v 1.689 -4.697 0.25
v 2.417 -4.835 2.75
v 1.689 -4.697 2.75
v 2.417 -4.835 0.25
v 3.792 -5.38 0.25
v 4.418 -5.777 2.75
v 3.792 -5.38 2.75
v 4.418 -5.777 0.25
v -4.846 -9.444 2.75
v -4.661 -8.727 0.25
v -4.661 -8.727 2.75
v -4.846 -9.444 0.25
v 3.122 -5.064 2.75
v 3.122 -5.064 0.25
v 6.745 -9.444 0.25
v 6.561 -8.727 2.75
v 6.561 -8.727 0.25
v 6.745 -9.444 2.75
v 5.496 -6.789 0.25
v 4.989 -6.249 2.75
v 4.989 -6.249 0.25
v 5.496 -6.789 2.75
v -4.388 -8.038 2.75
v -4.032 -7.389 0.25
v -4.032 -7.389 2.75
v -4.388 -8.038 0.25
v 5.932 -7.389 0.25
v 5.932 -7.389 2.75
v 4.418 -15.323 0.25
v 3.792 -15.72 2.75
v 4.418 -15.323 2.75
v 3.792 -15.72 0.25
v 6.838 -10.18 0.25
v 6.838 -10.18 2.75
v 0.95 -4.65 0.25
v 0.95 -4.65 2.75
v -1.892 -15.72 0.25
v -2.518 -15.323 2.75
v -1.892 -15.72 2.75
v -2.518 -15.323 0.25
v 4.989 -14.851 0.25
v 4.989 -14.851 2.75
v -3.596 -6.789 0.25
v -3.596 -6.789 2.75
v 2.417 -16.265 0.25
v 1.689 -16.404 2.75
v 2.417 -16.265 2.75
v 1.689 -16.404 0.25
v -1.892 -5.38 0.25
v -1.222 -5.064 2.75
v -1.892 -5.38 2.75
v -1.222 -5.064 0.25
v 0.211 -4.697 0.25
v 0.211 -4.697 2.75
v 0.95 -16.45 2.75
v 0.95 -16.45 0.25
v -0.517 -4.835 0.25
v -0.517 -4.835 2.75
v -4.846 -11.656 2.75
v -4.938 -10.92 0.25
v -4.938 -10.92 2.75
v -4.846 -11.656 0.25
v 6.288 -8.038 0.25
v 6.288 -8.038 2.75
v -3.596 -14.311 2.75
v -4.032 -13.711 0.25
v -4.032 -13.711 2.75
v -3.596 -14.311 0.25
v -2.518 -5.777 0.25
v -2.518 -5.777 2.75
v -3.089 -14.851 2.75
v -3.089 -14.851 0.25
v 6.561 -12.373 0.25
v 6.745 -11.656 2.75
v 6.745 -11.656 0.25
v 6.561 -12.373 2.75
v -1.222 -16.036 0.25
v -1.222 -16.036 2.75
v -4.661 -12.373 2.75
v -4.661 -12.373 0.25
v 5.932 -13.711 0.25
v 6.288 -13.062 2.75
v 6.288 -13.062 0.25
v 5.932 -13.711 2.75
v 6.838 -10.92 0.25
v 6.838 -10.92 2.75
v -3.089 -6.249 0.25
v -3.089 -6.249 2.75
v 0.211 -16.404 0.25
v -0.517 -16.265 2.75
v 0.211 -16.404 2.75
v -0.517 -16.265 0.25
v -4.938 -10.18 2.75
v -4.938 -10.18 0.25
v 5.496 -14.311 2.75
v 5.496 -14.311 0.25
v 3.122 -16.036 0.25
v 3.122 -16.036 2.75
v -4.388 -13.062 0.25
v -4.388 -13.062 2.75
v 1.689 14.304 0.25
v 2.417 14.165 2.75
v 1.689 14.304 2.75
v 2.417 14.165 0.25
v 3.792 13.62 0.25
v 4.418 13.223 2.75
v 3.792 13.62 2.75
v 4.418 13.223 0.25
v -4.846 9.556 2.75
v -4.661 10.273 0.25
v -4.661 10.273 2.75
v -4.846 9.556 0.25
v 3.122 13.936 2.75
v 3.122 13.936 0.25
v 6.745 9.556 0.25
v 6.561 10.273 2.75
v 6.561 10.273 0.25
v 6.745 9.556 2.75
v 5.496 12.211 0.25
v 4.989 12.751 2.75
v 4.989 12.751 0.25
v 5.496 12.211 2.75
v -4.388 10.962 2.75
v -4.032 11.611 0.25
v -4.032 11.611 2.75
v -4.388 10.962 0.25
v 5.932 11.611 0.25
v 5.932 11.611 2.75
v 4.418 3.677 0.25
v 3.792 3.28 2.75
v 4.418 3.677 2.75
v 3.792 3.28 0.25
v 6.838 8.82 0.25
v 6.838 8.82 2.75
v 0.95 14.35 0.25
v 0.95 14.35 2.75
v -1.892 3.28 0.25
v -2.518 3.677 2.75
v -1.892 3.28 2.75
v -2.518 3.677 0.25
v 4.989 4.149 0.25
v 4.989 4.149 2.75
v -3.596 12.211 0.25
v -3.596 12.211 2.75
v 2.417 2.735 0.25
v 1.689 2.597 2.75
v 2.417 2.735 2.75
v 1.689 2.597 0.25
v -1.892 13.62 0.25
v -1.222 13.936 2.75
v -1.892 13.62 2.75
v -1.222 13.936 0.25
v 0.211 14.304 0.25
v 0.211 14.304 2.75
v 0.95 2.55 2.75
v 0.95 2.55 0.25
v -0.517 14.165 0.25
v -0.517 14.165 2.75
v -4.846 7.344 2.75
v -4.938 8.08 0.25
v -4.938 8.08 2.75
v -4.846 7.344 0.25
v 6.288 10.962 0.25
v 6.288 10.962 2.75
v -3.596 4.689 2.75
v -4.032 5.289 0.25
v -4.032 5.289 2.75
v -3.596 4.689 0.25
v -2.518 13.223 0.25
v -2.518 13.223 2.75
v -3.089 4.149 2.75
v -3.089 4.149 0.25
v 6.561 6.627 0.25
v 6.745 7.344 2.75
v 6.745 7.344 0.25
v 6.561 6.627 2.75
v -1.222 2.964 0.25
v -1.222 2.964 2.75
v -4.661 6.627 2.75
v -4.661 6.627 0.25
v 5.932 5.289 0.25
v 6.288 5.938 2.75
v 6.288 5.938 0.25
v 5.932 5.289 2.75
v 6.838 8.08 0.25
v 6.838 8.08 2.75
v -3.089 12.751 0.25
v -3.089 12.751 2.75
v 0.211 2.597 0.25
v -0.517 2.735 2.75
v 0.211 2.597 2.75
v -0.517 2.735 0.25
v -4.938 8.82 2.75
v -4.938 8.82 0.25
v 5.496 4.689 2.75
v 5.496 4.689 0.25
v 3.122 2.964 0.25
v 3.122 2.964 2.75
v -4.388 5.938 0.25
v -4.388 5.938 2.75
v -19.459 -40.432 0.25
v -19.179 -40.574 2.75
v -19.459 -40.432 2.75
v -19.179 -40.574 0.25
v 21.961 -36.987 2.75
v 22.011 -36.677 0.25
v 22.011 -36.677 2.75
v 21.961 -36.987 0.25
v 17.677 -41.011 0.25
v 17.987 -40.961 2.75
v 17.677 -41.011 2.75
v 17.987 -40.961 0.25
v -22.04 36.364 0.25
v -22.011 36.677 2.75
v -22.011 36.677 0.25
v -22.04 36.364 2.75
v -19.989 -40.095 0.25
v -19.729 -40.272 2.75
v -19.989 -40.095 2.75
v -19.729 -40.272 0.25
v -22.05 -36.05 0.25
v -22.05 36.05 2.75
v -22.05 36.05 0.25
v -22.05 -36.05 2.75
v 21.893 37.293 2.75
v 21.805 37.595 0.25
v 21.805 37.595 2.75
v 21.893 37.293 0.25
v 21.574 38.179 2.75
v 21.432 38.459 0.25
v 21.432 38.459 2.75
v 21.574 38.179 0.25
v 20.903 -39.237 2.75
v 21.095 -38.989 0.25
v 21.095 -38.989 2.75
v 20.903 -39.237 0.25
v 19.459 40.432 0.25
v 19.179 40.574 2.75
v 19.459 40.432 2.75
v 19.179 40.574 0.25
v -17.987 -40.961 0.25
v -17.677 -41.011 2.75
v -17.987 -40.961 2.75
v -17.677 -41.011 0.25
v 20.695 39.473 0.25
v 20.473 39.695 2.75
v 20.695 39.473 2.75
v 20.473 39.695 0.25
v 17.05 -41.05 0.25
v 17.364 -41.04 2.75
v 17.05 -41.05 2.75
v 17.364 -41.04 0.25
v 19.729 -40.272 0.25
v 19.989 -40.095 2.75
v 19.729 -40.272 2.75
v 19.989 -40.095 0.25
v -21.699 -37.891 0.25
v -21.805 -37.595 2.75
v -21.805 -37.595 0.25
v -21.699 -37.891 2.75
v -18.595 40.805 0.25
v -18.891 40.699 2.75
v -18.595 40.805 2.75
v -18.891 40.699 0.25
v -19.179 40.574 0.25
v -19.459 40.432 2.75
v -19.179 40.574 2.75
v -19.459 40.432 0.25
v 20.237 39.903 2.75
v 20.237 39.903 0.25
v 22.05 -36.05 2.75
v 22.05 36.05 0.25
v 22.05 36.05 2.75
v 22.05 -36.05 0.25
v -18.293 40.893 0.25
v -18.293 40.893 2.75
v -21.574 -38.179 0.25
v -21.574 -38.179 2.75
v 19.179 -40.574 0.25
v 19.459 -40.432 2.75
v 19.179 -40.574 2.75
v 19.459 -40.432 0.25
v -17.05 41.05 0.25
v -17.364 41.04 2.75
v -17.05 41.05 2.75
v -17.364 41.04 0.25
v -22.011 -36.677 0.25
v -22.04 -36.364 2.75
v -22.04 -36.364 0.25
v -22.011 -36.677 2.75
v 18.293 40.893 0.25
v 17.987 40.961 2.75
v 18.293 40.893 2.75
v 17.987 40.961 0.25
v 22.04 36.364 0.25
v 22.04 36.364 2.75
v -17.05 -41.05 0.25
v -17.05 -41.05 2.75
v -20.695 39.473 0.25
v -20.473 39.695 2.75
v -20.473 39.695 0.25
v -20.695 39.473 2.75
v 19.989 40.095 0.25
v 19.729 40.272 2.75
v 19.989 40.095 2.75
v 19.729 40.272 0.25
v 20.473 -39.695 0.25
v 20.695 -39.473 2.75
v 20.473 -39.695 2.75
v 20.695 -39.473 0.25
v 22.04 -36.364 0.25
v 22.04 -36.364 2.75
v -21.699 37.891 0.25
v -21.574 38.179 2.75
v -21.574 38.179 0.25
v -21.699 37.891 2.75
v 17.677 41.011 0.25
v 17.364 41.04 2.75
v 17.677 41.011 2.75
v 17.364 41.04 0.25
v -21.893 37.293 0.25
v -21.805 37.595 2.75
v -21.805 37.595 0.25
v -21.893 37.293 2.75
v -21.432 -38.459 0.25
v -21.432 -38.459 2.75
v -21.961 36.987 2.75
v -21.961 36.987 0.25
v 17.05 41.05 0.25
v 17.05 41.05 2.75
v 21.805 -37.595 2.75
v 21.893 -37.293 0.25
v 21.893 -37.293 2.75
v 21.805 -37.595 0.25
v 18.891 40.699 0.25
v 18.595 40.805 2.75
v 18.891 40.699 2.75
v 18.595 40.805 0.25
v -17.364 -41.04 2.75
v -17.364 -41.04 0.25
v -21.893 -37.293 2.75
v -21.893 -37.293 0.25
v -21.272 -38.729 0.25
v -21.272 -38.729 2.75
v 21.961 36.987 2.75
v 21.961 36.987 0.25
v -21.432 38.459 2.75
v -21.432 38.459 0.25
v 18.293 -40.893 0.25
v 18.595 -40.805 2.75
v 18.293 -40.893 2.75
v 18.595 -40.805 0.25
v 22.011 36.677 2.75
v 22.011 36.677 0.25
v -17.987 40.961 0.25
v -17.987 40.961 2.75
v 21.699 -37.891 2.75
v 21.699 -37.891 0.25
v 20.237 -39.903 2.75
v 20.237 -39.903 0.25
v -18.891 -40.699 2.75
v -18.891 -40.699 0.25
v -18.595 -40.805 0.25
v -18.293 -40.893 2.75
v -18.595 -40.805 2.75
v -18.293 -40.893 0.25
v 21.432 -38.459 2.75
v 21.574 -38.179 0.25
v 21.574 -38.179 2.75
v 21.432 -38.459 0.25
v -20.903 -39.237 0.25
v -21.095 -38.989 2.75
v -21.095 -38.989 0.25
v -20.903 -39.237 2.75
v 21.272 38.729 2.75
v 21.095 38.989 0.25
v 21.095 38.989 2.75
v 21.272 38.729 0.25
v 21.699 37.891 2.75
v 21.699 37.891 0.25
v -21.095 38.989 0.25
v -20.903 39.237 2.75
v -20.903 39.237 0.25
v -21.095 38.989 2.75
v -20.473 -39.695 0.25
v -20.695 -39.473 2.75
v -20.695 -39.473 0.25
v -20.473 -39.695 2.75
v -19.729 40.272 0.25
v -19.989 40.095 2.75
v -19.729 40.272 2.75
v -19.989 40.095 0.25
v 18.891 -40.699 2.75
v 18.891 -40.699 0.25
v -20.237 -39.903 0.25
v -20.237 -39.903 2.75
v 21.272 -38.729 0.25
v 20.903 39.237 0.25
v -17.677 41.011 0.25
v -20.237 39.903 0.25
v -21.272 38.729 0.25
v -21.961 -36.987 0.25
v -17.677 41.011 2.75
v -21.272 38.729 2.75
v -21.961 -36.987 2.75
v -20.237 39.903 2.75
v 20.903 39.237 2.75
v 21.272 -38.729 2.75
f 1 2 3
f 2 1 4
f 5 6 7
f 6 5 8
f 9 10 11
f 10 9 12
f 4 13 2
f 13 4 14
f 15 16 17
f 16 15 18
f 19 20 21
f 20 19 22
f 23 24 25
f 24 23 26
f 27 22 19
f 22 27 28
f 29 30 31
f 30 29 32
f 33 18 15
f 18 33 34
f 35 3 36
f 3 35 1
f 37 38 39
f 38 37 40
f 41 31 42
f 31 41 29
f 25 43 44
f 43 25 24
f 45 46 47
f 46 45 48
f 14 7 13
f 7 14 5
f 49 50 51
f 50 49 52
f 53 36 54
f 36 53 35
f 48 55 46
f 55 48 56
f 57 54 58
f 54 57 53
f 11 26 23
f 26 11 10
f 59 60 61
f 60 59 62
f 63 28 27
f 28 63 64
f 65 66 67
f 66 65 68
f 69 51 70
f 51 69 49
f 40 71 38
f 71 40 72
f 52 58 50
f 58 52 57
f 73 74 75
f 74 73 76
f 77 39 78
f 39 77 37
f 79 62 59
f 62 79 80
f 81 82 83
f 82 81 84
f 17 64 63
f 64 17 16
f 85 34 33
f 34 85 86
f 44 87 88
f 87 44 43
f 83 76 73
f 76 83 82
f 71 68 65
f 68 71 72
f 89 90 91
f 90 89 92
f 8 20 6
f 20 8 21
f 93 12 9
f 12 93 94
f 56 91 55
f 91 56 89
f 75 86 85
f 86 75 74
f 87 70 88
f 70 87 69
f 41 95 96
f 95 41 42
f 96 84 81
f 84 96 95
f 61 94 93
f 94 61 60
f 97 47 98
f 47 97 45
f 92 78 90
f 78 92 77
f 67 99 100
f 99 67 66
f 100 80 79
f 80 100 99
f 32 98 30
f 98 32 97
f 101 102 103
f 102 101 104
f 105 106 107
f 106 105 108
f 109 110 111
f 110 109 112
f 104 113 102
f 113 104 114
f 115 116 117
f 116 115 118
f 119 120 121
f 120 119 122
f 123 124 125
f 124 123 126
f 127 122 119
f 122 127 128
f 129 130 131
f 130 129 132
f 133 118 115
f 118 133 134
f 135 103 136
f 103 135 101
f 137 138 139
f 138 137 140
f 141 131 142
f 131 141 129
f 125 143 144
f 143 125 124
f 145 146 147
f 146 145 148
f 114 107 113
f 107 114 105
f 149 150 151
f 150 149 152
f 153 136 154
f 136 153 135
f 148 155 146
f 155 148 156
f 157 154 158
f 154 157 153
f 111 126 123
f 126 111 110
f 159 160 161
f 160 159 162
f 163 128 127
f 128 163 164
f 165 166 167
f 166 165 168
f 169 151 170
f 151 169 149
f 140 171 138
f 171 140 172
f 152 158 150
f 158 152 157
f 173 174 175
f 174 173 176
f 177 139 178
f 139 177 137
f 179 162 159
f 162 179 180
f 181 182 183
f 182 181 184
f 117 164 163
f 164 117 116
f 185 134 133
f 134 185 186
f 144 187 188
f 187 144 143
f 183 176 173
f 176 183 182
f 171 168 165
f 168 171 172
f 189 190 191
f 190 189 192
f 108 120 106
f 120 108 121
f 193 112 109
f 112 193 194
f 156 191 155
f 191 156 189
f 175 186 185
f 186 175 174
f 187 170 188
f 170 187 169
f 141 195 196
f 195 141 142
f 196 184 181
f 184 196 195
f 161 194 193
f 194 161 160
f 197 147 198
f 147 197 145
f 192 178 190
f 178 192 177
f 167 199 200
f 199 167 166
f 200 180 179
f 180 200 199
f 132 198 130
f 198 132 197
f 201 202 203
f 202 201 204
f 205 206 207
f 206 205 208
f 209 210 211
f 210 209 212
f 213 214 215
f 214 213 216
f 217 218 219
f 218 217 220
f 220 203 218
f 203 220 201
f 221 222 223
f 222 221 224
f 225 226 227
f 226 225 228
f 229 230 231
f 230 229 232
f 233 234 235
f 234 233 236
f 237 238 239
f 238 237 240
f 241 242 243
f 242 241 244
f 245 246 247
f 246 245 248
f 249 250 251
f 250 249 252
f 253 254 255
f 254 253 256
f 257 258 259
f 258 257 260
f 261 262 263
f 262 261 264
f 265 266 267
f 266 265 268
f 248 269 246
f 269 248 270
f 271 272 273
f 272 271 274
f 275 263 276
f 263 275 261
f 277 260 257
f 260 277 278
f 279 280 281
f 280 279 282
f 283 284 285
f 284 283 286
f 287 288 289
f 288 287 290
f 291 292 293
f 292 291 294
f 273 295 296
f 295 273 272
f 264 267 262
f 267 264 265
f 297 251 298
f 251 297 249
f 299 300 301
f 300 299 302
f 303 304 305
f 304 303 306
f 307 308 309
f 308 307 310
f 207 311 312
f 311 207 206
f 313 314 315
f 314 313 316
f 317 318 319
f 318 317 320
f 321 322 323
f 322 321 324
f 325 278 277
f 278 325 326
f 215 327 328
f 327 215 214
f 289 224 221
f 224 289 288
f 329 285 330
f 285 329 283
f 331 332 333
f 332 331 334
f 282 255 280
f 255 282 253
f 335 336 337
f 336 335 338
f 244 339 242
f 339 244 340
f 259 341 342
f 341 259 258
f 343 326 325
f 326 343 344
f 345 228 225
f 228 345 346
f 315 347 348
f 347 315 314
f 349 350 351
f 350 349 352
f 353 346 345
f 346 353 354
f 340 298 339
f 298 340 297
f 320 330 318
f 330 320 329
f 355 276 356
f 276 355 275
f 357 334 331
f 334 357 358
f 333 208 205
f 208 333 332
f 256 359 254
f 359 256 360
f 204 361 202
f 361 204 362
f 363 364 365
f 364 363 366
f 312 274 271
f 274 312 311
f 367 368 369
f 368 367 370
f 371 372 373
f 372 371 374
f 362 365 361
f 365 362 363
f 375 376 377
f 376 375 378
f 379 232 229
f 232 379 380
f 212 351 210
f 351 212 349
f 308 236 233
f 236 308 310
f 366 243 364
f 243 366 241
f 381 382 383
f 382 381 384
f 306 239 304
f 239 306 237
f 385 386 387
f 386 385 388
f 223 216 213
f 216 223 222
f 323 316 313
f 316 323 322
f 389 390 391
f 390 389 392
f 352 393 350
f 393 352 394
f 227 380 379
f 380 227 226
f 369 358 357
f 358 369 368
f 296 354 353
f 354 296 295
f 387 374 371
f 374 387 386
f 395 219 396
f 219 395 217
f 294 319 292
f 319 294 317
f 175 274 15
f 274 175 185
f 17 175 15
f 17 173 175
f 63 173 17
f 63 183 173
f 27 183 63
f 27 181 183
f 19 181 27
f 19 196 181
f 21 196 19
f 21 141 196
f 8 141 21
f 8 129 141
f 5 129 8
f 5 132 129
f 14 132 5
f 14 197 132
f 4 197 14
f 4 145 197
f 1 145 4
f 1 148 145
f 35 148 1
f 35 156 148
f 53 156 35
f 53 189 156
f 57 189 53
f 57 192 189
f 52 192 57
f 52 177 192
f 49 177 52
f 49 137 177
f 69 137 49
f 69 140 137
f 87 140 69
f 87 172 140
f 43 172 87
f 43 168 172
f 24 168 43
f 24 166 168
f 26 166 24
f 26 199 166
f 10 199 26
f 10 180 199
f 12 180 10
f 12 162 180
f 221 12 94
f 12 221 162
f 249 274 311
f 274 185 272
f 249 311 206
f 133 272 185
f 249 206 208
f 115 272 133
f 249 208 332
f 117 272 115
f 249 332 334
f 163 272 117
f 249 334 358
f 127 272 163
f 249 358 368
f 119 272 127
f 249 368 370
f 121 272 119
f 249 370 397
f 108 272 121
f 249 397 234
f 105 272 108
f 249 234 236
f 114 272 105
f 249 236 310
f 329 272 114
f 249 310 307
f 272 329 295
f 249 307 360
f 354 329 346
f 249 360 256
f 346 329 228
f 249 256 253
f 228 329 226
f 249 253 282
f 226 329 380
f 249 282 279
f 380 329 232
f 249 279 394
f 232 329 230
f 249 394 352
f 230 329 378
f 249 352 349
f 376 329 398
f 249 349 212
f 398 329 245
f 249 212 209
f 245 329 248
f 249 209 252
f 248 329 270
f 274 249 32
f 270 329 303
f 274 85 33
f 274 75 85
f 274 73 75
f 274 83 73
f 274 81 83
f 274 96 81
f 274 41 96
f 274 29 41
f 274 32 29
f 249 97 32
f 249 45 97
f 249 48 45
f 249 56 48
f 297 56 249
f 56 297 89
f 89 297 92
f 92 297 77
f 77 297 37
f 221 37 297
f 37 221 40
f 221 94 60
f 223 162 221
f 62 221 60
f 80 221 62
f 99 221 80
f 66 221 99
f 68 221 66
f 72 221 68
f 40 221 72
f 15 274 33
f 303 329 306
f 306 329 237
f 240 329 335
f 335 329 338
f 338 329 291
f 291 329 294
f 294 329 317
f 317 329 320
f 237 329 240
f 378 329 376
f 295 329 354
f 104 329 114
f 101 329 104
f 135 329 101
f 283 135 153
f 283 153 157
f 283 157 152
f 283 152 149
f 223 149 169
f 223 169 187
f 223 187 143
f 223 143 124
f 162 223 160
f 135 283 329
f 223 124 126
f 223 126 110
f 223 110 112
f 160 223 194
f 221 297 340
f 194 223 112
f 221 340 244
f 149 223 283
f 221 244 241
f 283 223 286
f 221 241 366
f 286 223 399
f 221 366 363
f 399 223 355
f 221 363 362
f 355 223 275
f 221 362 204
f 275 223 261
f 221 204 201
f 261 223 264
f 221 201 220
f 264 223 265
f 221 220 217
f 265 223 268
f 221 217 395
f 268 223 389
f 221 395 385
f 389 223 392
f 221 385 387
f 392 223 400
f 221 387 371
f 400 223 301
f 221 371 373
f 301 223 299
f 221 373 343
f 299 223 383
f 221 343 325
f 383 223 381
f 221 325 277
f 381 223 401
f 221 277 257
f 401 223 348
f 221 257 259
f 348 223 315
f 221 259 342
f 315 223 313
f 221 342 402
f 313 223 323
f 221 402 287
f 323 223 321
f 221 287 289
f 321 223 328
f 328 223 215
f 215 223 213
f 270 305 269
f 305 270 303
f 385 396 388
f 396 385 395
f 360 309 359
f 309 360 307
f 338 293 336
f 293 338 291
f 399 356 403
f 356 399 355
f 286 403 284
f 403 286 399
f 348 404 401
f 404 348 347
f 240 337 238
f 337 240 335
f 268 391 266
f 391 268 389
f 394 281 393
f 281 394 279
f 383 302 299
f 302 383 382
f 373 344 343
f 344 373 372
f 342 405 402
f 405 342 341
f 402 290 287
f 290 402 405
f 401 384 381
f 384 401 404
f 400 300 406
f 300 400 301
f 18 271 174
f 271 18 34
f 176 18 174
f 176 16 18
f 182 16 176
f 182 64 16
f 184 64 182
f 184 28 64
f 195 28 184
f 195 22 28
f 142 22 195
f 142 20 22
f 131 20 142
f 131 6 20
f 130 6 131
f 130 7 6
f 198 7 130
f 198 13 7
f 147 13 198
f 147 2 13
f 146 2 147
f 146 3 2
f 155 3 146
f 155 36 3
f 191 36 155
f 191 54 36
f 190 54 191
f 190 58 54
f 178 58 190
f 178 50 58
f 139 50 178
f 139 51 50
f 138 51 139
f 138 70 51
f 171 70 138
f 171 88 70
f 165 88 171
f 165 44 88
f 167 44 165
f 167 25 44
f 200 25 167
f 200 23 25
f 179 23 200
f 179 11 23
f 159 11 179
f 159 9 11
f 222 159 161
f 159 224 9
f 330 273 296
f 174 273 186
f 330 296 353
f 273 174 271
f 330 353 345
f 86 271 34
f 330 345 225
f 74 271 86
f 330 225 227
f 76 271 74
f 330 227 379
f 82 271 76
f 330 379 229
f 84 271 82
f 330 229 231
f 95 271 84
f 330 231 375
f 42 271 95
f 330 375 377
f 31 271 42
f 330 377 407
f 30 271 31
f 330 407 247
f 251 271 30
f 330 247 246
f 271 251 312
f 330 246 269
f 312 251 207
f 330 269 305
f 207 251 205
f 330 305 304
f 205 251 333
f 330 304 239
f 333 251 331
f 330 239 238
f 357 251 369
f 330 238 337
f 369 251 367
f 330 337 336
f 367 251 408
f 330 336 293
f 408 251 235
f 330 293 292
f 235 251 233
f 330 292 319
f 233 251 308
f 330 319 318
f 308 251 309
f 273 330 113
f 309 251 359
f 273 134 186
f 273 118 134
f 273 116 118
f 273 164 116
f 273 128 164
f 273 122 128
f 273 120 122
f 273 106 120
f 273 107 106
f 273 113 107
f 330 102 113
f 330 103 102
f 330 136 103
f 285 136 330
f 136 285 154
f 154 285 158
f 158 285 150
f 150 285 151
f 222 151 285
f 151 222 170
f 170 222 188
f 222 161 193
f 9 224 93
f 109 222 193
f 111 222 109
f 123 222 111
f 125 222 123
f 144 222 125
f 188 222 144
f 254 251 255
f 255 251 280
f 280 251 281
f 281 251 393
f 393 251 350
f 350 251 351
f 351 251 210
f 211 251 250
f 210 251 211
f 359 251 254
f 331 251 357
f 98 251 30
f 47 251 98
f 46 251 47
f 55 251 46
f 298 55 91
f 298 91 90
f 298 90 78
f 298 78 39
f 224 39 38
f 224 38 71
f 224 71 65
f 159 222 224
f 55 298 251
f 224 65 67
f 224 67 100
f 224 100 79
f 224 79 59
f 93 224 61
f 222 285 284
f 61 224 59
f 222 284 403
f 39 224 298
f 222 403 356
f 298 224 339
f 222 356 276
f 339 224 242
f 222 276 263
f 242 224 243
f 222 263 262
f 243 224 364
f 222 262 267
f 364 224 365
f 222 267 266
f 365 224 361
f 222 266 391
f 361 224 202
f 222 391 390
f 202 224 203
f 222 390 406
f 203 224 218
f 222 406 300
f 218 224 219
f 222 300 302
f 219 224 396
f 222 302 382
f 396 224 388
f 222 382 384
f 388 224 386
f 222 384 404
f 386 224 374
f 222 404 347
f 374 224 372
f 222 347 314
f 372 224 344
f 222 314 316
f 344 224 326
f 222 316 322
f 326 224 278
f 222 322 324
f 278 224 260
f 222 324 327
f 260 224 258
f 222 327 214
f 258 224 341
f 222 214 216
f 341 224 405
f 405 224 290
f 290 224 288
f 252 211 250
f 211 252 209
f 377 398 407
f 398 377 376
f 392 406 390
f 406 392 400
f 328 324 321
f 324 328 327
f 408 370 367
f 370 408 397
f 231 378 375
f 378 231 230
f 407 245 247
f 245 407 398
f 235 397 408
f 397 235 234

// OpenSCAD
$vpr = [55, 0, 234];
$vpt = [25, -15, -20];
$vpd = 343;


/*//////////////////////////////////////////////////////////////////
              -    FB Aka Heartman/Hearty 2016     -                   
              -   http://heartygfx.blogspot.com    -                  
              -       OpenScad Parametric Box      -                     
              -         CC BY-NC 3.0 License       -                      
////////////////////////////////////////////////////////////////////                                                                                                             
12/02/2016 - Fixed minor bug 
28/02/2016 - Added holes ventilation option                    
09/03/2016 - Added PCB feet support, fixed the shell artefact on export mode. 

*/ ////////////////////////// - Info - //////////////////////////////

// All coordinates are starting as integrated circuit pins.
// From the top view :

//   CoordD           <---       CoordC
//                                 ^
//                                 ^
//                                 ^
//   CoordA           --->       CoordB

////////////////////////////////////////////////////////////////////

/////////////////////////// - Box parameters - //////////////////////

/* [Box dimensions] */
// - Longueur - Length  
Length = 135;
// - Largeur - Width
Width = 88;
// - Hauteur - Height  
Height = 50;
// - Epaisseur - Wall thickness  
Thick = 2.5; //[2:5]  

/* [Box options] */
// - DiamÃ¨tre Coin arrondi - Filet diameter  
Filet = 5; //[0.1:12] 
// - lissage de l'arrondi - Filet smoothness  
Resolution = 1; //[1:100] 
// - TolÃ©rance - Tolerance (Panel/rails gap)
m = 0.9;
// Pieds PCB - PCB feet (x4) 
PCBFeet = 0; // [0:No, 1:Yes]
// - Decorations to ventilation holes
Vent = 0; // [0:No, 1:Yes]
// - Decoration-Holes width (in mm)
Vent_width = 0;

/////////////////////////// - PCB parameters - //////////////////////

/* [PCB_Feet] */
//All dimensions are from the center foot axis

// - Coin bas gauche - Low left corner X position
PCBPosX = 0;
// - Coin bas gauche - Low left corner Y position
PCBPosY = 0;
// - Longueur PCB - PCB Length
PCBLength = 0;
// - Largeur PCB - PCB Width
PCBWidth = 0;
// - Heuteur pied - Feet height
FootHeight = 0;
// - DiamÃ¨tre pied - Foot diameter
FootDia = 0;
// - DiamÃ¨tre trou - Hole diameter
FootHole = 0;

////////////////////////////////////////////////////////////////////////
//////////////////////// <- Render Manager -> //////////////////////////
////////////////////////////////////////////////////////////////////////

/* [STL element to export] */
//Coque haut - Top shell
TShell = 0; // [0:No, 1:Yes]
//Coque bas- Bottom shell
BShell = 0; // [0:No, 1:Yes]
//Panneau avant - Front panel
FPanL = 1; // [0:No, 1:Yes]
//Panneau arriÃ¨re - Back panel  
BPanL = 0; // [0:No, 1:Yes]

/* [Hidden] */
// - Couleur coque - Shell color  
Couleur1 = "Orange";
// - Couleur panneaux - Panels color    
Couleur2 = "OrangeRed";
// Thick X 2 - making decorations thicker if it is a vent to make sure they go through shell
Dec_Thick = Vent ? Thick * 2 : Thick;
// - Depth decoration
Dec_size = Vent ? Thick * 2 : 0.8;

////////////////// - Generic rounded box - ///////////////

module RoundBox($a = Length, $b = Width, $c = Height) { // Cube bords arrondis
  $fn = Resolution;
  translate([0, Filet, Filet]) {
    minkowski() {
      cube([$a - (Length / 2), $b - (2 * Filet), $c - (2 * Filet)], center = false);
      rotate([0, 90, 0]) {
        cylinder(r = Filet, h = Length / 2, center = false);
      }
    }
  }
} // End of RoundBox Module

////////////////////////////////// - Module Coque/Shell - //////////////////////////////////         

module Coque() { //Coque - Shell  
  Thick = Thick * 2;
  difference() {
    difference() { //sides decoration
      union() {
        difference() { //soustraction de la forme centrale - Substraction Fileted box

          difference() { //soustraction cube median - Median cube slicer
            union() { //union               
              difference() { //Coque    
                RoundBox();
                translate([Thick / 2, Thick / 2, Thick / 2]) {
                  RoundBox($a = Length - Thick, $b = Width - Thick, $c = Height - Thick);
                }
              } //Fin diff Coque                            
              difference() { //largeur Rails        
                translate([Thick + m, Thick / 2, Thick / 2]) { // Rails
                  RoundBox($a = Length - ((2 * Thick) + (2 * m)), $b = Width - Thick, $c = Height - (Thick * 2));
                } //fin Rails
                translate([((Thick + m / 2) * 1.55), Thick / 2, Thick / 2 + 0.1]) { // +0.1 added to avoid the artefact
                  RoundBox($a = Length - ((Thick * 3) + 2 * m), $b = Width - Thick, $c = Height - Thick);
                }
              } //Fin largeur Rails
            } //Fin union                                   
            translate([-Thick, -Thick, Height / 2]) { // Cube Ã  soustraire
              cube([Length + 100, Width + 100, Height], center = false);
            }
          } //fin soustraction cube median - End Median cube slicer
          translate([-Thick / 2, Thick, Thick]) { // Forme de soustraction centrale 
            RoundBox($a = Length + Thick, $b = Width - Thick * 2, $c = Height - Thick);
          }
        }

        difference() { // wall fixation box legs
          union() {
            translate([3 * Thick + 5, Thick, Height / 2]) {
              rotate([90, 0, 0]) {
                $fn = 6;
                cylinder(d = 16, Thick / 2);
              }
            }

            translate([Length - ((3 * Thick) + 5), Thick, Height / 2]) {
              rotate([90, 0, 0]) {
                $fn = 6;
                cylinder(d = 16, Thick / 2);
              }
            }

          }
          translate([4, Thick + Filet, Height / 2 - 57]) {
            rotate([45, 0, 0]) {
              cube([Length, 40, 40]);
            }
          }
          translate([0, -(Thick * 1.46), Height / 2]) {
            cube([Length, Thick * 2, 10]);
          }
        } //Fin fixation box legs
      }

      union() { // outbox sides decorations

        for (i = [0: Thick: Length / 4]) {

          // Ventilation holes part code submitted by Ettie - Thanks ;) 
          translate([10 + i, -Dec_Thick + Dec_size, 1]) {
            cube([Vent_width, Dec_Thick, Height / 4]);
          }
          translate([(Length - 10) - i, -Dec_Thick + Dec_size, 1]) {
            cube([Vent_width, Dec_Thick, Height / 4]);
          }
          translate([(Length - 10) - i, Width - Dec_size, 1]) {
            cube([Vent_width, Dec_Thick, Height / 4]);
          }
          translate([10 + i, Width - Dec_size, 1]) {
            cube([Vent_width, Dec_Thick, Height / 4]);
          }

        } // fin de for
        // }
      } //fin union decoration
    } //fin difference decoration

    union() { //sides holes
      $fn = 50;
      translate([3 * Thick + 5, 20, Height / 2 + 4]) {
        rotate([90, 0, 0]) {
          cylinder(d = 2, 20);
        }
      }
      translate([Length - ((3 * Thick) + 5), 20, Height / 2 + 4]) {
        rotate([90, 0, 0]) {
          cylinder(d = 2, 20);
        }
      }
      translate([3 * Thick + 5, Width + 5, Height / 2 - 4]) {
        rotate([90, 0, 0]) {
          cylinder(d = 2, 20);
        }
      }
      translate([Length - ((3 * Thick) + 5), Width + 5, Height / 2 - 4]) {
        rotate([90, 0, 0]) {
          cylinder(d = 2, 20);
        }
      }
    } //fin de sides holes

  } //fin de difference holes
} // fin coque 

////////////////////////////// - Experiment - ///////////////////////////////////////////

/////////////////////// - Foot with base filet - /////////////////////////////
module foot(FootDia, FootHole, FootHeight) {
  Filet = 2;
  color(Couleur1)
  translate([0, 0, Filet - 1.5])
  difference() {

    difference() {
      //translate ([0,0,-Thick]){
      cylinder(d = FootDia + Filet, FootHeight - Thick, $fn = 100);
      //}
      rotate_extrude($fn = 100) {
        translate([(FootDia + Filet * 2) / 2, Filet, 0]) {
          minkowski() {
            square(10);
            circle(Filet, $fn = 100);
          }
        }
      }
    }
    cylinder(d = FootHole, FootHeight + 1, $fn = 100);
  }
} // Fin module foot

module Feet() {
  //////////////////// - PCB only visible in the preview mode - /////////////////////    
  translate([3 * Thick + 2, Thick + 5, FootHeight + (Thick / 2) - 0.5]) {

    %
    square([PCBLength + 10, PCBWidth + 10]);
    translate([PCBLength / 2, PCBWidth / 2, 0.5]) {
      color("Olive") %
        text("PCB", halign = "center", valign = "center", font = "Arial black");
    }
  } // Fin PCB 

  ////////////////////////////// - 4 Feet - //////////////////////////////////////////     
  translate([3 * Thick + 7, Thick + 10, Thick / 2]) {
    foot(FootDia, FootHole, FootHeight);
  }
  translate([(3 * Thick) + PCBLength + 7, Thick + 10, Thick / 2]) {
    foot(FootDia, FootHole, FootHeight);
  }
  translate([(3 * Thick) + PCBLength + 7, (Thick) + PCBWidth + 10, Thick / 2]) {
    foot(FootDia, FootHole, FootHeight);
  }
  translate([3 * Thick + 7, (Thick) + PCBWidth + 10, Thick / 2]) {
    foot(FootDia, FootHole, FootHeight);
  }

} // Fin du module Feet

////////////////////////////////////////////////////////////////////////
////////////////////// <- Holes Panel Manager -> ///////////////////////
////////////////////////////////////////////////////////////////////////

//                           <- Panel ->  
module Panel(Length, Width, Thick, Filet) {
  scale([0.5, 1, 1])
  minkowski() {
    cube([Thick, Width - (Thick * 2 + Filet * 2 + m), Height - (Thick * 2 + Filet * 2 + m)]);
    translate([0, Filet, Filet])
    rotate([0, 90, 0])
    cylinder(r = Filet, h = Thick, $fn = 100);
  }
}

//                          <- Circle hole -> 
// Cx=Cylinder X position | Cy=Cylinder Y position | Cdia= Cylinder dia | Cheight=Cyl height
module CylinderHole(OnOff, Cx, Cy, Cdia) {
  if (OnOff == 1)
    translate([Cx, Cy, -1])
  cylinder(d = Cdia, 10, $fn = 50);
}
//                          <- Square hole ->  
// Sx=Square X position | Sy=Square Y position | Sl= Square Length | Sw=Square Width | Filet = Round corner
module SquareHole(OnOff, Sx, Sy, Sl, Sw, Filet) {
  if (OnOff == 1)
    minkowski() {
      translate([Sx + Filet / 2, Sy + Filet / 2, -1])
      cube([Sl - Filet, Sw - Filet, 10]);
      cylinder(d = Filet, h = 10, $fn = 100);
    }
}

//                      <- Linear text panel -> 
module LText(OnOff, Tx, Ty, Font, Size, Content) {
  if (OnOff == 0)
    translate([Tx, Ty, Thick + .5])
  linear_extrude(height = 0.5) {
    text(Content, size = Size, font = Font);
  }
}
//                     <- Circular text panel->  
module CText(OnOff, Tx, Ty, Font, Size, TxtRadius, Angl, Turn, Content) {
  if (OnOff == 0) {
    Angle = -Angl / len(Content);
    translate([Tx, Ty, Thick + .5])
    for (i = [0: len(Content) - 1]) {
      rotate([0, 0, i * Angle + 90 + Turn])
      translate([0, TxtRadius, 0]) {
        linear_extrude(height = 0.5) {
          text(Content[i], font = Font, size = Size, valign = "baseline", halign = "center");
        }
      }
    }
  }
}
////////////////////// <- New module Panel -> //////////////////////
module FPanL() {
  difference() {
    color(Couleur2)
    Panel(Length, Width, Thick, Filet);

    rotate([90, 0, 90]) {
      color(Couleur2) {

        //////////////////////// <- Hole Specifications -> //////////////////////

        SquareHole(0, 20, 20, 15, 10, 1); //(On/Off, Xpos,Ypos,Length,Width,Filet)
        SquareHole(0, 40, 20, 15, 10, 1);
        SquareHole(0, 60, 20, 15, 10, 1);
        CylinderHole(0, 27, 40, 8); //(On/Off, Xpos, Ypos, Diameter)
        CylinderHole(1, 30.5, 23, 11.8);
        CylinderHole(1, 49.5, 23, 11.8);
        SquareHole(0, 20, 50, 80, 30, 3);
        CylinderHole(0, 93, 30, 10);
        SquareHole(0, 120, 20, 30, 60, 3);
        //                            <- To here -> 
      }
    }
  }

  color(Couleur1) {
    translate([-.5, 0, 0])
    rotate([90, 0, 90]) {

      //                      <- Adding text from here ->          
      LText(1, 20, 83, "Arial Black", 4, "Digital Screen"); //(On/Off, Xpos, Ypos, "Font", Size, "Text")
      LText(1, 120, 83, "Arial Black", 4, "Level");
      LText(1, 20, 11, "Arial Black", 6, "  1     2      3");
      CText(1, 93, 29, "Arial Black", 4, 10, 180, 0, "1 . 2 . 3 . 4 . 5 . 6"); //(On/Off, Xpos, Ypos, "Font", Size, Diameter, Arc(Deg), Starting Angle(Deg),"Text")
      //                            <- To here ->
    }
  }
}

/////////////////////////// <- Main part -> /////////////////////////


// Rotate & Translate for printing
// Translate - X=(-.98*Length) Y=(-.5*Width) Z=(-.5*Height)
rotate([0,90,0]){
translate([-.98*Length,-.5*Width,-.5*Height]){


  if (TShell == 1)
    // Coque haut - Top Shell
    color(Couleur1, 1) {
      translate([0, Width, Height + 0.2]) {
        rotate([0, 180, 180]) {
          Coque();
        }
      }
    }

  if (BShell == 1)
    // Coque bas - Bottom shell
    color(Couleur1) {
      Coque();
    }

  // Pied support PCB - PCB feet
  if (PCBFeet == 1)
    // Feet
    translate([PCBPosX, PCBPosY, 0]) {
      Feet();
    }

  // Panneau avant - Front panel  <<<<<< Text and holes only on this one.
  //rotate([0,-90,-90]) 
  if (FPanL == 1)
    translate([Length - (Thick * 2 + m / 2), Thick + m / 2, Thick + m / 2])
  FPanL();

  //Panneau arriÃ¨re - Back panel
  if (BPanL == 1)
    color(Couleur2)
  translate([Thick + m / 2, Thick + m / 2, Thick + m / 2])
  Panel(Length, Width, Thick, Filet);

}
}
